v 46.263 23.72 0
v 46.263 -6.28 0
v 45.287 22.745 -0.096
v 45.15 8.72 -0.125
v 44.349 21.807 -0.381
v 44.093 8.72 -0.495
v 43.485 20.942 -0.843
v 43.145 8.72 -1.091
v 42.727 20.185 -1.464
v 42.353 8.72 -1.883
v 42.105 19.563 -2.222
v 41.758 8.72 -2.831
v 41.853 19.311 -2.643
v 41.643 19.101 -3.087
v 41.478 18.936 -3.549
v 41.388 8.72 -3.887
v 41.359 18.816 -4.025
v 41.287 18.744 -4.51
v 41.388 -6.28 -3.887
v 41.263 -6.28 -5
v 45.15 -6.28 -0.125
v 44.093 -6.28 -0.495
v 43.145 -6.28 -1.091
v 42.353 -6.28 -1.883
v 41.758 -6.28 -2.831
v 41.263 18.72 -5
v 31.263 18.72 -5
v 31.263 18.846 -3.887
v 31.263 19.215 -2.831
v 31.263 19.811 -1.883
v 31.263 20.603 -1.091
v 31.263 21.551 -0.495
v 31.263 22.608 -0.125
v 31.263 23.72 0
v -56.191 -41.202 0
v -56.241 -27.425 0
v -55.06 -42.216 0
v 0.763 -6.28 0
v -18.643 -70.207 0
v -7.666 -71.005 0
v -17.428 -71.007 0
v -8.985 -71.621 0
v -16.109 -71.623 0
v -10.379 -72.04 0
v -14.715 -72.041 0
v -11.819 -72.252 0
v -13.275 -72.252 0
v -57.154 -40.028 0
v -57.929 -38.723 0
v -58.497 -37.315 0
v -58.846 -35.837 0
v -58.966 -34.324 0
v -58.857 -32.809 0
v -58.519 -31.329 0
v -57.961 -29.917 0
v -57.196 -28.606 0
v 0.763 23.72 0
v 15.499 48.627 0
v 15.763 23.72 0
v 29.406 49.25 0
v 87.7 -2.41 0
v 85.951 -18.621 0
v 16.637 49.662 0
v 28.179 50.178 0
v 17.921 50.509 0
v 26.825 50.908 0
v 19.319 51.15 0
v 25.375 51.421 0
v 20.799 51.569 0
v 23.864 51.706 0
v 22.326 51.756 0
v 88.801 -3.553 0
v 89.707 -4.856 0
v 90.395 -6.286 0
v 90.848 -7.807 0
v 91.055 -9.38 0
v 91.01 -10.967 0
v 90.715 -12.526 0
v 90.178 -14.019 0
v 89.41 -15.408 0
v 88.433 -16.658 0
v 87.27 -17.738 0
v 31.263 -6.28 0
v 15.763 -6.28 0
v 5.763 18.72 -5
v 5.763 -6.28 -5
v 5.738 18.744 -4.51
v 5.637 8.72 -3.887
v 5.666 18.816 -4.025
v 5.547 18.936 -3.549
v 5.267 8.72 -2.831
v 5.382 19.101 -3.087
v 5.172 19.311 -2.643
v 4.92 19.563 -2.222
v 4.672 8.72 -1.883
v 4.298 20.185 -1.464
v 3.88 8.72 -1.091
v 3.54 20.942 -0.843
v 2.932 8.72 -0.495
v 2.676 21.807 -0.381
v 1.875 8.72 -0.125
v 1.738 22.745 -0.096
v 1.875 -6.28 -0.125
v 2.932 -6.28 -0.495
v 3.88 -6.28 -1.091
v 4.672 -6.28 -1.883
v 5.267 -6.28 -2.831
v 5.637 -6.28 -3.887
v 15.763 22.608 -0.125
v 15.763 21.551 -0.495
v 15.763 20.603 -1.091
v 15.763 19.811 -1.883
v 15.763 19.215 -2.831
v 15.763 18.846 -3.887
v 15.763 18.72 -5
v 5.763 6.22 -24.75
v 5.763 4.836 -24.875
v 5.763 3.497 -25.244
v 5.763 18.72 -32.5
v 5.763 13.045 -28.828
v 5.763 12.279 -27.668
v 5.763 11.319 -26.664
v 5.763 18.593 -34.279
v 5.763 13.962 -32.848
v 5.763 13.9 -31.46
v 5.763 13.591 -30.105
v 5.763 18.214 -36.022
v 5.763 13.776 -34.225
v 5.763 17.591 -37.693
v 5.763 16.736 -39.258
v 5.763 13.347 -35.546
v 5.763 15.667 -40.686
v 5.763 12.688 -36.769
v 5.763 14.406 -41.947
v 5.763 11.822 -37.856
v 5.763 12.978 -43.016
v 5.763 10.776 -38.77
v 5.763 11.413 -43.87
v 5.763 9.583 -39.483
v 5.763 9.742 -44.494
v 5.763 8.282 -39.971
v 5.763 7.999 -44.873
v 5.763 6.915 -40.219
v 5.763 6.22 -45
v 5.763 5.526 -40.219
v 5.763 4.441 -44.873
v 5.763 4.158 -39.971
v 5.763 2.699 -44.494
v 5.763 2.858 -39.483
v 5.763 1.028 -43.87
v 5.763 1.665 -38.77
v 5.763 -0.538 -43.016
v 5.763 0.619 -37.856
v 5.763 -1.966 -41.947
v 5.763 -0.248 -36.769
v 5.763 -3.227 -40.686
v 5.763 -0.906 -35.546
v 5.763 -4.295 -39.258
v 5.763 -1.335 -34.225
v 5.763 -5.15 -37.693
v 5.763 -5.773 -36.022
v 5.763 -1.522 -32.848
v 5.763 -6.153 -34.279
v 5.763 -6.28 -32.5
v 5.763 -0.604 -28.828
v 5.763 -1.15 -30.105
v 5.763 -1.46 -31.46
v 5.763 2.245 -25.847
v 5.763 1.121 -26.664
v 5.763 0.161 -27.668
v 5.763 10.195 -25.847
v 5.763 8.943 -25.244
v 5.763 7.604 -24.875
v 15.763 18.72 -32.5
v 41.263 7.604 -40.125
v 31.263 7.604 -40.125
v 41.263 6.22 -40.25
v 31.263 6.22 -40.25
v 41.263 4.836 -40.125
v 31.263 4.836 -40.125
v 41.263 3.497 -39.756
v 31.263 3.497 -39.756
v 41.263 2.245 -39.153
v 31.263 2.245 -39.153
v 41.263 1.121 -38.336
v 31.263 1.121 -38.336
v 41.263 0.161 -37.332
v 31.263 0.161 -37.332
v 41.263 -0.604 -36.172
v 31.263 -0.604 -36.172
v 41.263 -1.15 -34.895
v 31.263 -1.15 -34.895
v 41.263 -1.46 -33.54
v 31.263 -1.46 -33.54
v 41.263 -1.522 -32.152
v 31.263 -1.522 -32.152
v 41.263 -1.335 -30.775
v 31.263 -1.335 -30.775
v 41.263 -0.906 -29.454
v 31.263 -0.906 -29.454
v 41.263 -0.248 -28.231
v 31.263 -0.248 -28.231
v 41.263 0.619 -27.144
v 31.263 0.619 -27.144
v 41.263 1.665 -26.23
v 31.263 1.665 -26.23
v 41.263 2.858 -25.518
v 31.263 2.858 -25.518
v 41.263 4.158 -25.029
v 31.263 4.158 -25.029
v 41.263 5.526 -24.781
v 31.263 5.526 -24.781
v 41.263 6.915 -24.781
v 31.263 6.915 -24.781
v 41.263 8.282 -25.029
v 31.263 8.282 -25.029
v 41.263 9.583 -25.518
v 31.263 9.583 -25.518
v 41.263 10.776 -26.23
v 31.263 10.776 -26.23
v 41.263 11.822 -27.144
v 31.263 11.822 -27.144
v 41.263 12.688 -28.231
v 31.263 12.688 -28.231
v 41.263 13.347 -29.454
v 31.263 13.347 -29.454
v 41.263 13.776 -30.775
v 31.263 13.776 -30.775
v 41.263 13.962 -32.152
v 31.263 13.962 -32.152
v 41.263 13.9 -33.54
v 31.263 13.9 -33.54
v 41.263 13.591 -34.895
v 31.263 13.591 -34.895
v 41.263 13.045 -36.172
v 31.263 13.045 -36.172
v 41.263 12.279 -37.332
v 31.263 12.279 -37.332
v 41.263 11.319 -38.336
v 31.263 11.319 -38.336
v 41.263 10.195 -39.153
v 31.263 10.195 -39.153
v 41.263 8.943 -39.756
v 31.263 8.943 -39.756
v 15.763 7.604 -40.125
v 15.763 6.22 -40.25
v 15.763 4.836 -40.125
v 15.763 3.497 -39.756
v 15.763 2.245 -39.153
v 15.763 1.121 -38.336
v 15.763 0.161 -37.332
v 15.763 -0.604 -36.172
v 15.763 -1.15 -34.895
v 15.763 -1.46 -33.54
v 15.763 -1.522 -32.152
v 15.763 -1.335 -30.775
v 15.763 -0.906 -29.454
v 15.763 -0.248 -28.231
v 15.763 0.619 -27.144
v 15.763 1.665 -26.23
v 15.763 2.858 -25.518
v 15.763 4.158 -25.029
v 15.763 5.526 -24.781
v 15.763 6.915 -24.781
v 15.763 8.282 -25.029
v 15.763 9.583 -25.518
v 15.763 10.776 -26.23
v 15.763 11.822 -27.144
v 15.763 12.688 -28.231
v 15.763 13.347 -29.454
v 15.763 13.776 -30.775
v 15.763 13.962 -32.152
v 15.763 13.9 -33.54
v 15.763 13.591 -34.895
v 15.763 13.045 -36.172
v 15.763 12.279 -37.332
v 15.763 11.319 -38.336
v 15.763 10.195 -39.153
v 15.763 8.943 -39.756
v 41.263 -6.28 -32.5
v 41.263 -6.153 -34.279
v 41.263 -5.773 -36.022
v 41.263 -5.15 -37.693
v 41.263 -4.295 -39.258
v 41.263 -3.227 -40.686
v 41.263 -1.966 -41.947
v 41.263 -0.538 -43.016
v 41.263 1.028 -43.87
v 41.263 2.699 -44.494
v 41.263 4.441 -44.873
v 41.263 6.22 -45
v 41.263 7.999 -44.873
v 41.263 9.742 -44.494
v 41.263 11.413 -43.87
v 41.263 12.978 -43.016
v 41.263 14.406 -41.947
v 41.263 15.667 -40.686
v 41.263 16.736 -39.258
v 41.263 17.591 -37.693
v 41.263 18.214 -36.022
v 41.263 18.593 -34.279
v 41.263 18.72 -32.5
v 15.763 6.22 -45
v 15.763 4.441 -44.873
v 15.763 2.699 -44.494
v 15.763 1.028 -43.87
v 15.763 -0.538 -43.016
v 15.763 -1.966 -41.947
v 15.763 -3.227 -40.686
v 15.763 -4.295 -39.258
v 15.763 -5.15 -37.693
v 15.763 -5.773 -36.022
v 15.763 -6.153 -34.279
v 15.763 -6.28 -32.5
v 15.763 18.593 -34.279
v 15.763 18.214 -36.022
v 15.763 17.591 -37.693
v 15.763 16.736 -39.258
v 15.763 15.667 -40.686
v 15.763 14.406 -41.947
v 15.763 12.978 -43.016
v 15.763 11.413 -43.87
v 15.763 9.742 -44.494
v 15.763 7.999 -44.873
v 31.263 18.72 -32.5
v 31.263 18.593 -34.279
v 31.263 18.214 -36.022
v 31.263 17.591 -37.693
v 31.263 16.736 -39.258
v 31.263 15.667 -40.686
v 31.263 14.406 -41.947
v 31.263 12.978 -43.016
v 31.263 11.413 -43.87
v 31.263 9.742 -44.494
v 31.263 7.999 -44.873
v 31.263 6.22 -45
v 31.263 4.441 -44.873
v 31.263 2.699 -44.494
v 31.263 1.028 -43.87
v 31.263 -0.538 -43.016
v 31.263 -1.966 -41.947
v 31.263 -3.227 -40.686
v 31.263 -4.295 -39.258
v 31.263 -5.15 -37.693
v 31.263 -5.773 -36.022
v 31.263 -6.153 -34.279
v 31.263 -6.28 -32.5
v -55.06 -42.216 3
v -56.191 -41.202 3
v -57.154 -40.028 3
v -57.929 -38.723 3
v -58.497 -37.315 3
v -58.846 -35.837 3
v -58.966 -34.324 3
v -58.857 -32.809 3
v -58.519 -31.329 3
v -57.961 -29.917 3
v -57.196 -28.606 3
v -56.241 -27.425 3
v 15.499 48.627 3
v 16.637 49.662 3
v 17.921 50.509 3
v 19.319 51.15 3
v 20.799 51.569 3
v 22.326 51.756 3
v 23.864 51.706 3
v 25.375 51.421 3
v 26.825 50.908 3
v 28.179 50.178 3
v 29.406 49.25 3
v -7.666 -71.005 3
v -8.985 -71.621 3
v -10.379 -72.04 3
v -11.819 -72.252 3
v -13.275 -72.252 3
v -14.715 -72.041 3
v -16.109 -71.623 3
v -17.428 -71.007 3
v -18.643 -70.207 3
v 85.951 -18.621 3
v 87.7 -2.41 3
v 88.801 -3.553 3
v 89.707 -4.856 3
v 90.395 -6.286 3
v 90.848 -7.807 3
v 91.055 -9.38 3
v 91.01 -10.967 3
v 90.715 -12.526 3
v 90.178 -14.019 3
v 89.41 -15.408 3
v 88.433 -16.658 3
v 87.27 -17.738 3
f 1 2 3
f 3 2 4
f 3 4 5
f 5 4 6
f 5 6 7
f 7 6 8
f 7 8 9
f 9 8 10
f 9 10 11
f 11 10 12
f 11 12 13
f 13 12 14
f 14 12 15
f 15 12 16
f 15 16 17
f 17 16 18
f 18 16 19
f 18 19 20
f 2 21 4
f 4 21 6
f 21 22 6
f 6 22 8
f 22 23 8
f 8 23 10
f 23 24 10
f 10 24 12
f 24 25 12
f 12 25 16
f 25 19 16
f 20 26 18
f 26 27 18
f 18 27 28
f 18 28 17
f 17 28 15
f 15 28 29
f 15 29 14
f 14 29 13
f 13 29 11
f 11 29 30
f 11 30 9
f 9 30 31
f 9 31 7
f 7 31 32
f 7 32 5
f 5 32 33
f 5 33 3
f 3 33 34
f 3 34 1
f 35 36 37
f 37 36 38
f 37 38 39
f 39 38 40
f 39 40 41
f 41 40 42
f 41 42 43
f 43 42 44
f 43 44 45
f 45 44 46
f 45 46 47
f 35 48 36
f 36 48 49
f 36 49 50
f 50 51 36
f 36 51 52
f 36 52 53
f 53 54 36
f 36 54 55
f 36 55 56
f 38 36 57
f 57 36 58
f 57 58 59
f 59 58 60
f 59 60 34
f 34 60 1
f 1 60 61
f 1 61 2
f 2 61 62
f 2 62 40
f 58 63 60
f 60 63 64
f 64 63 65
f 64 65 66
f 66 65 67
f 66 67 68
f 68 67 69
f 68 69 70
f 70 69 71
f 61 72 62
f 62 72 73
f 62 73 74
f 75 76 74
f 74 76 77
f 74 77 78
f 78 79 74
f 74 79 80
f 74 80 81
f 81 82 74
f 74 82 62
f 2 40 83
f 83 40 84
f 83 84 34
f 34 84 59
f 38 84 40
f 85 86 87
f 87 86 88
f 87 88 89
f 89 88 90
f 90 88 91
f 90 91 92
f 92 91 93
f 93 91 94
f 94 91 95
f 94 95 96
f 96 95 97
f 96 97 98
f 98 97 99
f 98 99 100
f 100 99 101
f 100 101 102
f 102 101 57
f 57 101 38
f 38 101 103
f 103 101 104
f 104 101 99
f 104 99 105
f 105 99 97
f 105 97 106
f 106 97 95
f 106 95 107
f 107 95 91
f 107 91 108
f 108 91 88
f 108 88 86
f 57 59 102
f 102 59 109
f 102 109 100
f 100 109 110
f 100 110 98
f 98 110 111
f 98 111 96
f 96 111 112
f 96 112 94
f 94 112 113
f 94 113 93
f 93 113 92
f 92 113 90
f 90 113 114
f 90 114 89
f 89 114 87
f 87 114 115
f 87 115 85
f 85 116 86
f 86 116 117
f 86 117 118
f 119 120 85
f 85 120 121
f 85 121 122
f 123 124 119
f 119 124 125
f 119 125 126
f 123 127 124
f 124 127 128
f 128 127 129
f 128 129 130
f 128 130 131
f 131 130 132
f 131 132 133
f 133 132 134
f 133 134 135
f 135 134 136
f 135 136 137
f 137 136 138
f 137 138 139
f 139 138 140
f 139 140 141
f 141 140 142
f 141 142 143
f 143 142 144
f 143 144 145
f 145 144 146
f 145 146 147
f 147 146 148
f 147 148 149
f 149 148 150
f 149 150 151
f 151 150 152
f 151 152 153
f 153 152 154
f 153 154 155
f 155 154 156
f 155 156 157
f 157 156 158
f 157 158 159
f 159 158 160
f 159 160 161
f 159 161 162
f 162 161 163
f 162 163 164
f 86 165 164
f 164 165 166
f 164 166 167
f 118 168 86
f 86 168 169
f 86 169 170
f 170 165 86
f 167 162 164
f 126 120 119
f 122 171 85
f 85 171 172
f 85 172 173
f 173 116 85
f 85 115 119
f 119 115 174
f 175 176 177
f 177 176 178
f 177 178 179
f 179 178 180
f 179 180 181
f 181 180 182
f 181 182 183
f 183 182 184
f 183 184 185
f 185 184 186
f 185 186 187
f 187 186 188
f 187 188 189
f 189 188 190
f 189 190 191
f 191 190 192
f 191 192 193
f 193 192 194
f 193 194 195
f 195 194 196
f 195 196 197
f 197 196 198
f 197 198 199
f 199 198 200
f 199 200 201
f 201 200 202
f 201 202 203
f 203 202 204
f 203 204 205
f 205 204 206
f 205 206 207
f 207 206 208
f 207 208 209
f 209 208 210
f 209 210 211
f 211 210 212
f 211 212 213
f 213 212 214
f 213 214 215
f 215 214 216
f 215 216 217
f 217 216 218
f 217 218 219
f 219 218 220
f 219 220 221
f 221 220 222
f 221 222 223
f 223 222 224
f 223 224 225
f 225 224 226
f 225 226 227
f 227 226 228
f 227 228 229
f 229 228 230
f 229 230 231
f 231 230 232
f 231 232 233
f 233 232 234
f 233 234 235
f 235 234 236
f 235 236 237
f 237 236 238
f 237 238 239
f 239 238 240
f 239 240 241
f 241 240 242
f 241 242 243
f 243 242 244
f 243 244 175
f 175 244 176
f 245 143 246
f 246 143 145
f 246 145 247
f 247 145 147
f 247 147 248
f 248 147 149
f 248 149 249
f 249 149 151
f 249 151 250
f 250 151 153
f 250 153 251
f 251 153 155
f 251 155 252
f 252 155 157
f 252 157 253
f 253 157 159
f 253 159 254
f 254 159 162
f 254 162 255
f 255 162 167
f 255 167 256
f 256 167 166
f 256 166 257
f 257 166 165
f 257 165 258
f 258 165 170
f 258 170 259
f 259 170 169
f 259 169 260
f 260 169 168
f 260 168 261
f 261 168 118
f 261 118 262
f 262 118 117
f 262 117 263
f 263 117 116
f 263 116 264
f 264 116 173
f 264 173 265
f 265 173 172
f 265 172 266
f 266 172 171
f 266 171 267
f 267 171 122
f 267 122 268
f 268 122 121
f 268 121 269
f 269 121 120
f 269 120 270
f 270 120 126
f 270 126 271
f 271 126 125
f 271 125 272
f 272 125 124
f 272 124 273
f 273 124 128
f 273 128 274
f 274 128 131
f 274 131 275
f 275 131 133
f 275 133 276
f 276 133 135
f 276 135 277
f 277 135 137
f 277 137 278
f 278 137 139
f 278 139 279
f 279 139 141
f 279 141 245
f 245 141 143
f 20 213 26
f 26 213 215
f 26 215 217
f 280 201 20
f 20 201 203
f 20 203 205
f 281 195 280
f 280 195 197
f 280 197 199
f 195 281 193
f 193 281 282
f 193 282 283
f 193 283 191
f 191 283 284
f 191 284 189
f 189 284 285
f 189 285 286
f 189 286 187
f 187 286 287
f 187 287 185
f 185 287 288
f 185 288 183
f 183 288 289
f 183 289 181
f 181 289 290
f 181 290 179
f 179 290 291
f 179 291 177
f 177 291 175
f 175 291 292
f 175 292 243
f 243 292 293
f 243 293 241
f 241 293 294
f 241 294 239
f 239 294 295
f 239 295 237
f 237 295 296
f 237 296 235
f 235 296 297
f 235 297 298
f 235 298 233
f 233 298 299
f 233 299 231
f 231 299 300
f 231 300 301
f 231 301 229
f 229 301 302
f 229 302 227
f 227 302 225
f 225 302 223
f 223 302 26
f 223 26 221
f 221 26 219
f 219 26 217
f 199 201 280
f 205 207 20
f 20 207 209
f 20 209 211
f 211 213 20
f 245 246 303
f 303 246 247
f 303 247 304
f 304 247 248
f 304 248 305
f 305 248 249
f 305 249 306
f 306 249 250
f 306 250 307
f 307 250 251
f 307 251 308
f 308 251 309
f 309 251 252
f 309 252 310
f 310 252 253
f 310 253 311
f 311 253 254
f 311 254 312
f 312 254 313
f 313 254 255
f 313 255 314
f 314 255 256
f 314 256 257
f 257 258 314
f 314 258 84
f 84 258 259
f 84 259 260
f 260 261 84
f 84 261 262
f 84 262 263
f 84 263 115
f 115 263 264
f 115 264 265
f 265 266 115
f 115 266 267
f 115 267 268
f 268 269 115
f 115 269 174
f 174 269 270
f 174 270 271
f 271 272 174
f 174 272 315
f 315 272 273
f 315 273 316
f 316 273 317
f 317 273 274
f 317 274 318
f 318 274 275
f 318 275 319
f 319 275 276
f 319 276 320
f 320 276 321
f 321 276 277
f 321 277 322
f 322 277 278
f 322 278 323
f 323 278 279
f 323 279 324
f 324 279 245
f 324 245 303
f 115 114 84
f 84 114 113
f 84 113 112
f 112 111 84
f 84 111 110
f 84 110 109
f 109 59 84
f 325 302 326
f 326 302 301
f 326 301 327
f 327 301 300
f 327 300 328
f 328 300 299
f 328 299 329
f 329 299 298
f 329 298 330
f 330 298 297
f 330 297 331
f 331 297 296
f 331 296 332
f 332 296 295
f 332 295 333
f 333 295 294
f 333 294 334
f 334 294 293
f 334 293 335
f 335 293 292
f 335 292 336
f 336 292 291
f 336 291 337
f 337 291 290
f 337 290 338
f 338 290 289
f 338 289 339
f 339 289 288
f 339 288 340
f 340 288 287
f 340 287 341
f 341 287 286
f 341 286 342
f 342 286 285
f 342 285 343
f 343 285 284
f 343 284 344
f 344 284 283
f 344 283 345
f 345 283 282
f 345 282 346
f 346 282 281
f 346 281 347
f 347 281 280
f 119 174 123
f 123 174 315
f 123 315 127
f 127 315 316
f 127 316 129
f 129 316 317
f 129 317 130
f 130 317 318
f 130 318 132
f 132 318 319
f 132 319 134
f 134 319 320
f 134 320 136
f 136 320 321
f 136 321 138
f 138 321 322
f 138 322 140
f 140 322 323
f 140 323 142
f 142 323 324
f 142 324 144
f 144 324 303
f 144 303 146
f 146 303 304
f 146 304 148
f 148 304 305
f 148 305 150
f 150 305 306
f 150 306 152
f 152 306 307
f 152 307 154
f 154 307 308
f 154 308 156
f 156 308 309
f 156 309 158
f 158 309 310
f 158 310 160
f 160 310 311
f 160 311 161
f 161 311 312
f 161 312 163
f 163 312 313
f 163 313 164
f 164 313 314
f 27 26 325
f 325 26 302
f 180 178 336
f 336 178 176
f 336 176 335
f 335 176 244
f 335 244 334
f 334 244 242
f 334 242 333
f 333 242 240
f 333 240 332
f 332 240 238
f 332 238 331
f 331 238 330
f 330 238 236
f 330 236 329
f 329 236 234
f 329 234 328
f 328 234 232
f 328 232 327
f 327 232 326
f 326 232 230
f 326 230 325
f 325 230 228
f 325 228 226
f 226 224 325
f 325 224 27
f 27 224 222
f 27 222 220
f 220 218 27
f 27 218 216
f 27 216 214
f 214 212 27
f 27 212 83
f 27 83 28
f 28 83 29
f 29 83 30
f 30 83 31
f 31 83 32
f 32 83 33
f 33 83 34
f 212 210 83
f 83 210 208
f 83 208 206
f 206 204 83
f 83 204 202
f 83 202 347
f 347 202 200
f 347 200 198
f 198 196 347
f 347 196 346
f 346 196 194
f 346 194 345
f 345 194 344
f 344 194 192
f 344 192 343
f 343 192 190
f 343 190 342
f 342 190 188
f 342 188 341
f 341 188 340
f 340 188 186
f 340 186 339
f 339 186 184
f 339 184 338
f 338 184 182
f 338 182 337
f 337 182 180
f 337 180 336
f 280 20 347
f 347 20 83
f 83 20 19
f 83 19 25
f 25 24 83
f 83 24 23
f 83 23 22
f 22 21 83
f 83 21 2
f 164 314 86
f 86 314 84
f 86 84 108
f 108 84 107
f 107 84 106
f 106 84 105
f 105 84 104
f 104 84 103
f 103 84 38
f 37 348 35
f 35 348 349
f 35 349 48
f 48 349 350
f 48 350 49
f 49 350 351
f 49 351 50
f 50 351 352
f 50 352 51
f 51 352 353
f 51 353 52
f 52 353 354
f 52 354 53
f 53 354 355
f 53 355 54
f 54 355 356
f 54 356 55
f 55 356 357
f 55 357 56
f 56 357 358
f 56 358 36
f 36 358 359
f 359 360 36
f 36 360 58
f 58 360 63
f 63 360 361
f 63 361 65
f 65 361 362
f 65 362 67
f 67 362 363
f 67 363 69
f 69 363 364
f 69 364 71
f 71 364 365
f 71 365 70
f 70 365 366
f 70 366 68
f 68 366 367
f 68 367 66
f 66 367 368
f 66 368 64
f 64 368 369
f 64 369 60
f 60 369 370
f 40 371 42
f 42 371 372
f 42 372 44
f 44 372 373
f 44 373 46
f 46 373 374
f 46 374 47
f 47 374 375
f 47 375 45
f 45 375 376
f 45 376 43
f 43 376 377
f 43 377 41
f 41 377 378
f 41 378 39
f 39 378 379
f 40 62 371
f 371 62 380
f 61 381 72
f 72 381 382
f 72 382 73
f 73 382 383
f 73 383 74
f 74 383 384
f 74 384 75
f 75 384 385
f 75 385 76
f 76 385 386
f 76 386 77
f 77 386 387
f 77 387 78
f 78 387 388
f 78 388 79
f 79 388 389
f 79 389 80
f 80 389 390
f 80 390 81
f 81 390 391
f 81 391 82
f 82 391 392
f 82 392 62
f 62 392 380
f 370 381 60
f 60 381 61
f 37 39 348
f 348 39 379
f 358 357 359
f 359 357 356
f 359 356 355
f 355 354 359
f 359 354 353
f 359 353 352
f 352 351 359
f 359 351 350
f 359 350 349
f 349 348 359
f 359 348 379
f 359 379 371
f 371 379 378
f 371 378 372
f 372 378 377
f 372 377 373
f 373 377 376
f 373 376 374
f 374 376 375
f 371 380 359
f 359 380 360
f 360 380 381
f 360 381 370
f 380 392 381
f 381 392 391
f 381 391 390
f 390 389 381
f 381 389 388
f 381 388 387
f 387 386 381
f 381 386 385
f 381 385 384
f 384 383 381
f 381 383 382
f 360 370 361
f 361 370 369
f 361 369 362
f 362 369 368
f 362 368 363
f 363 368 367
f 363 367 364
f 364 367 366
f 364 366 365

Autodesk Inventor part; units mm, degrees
ref_plane "YZ Plane" through (0, 0, 0) normal (1, 0, 0) x (0, 1, 0)
ref_plane "XZ Plane" through (0, 0, 0) normal (0, 1, 0) x (-1, 0, 0)
ref_plane "XY Plane" through (0, 0, 0) normal (0, 0, 1) x (1, 0, 0)
sketch "Sketch1" plane through (0, 0, 0) normal (0, 0, 1) x (1, 0, 0)
  line L0 (22.1506, 55.679) -> (98.2363, -11.7464)
  line L1 (98.2363, -11.7464) -> (-13.4178, -74.2233)
  line L2 (-13.4178, -74.2233) -> (-63.8323, -35.4735)
  line L3 (-63.8323, -35.4735) -> (22.1506, 55.679)
  point P0 (0, 0)
extrude "Extrusion1" add sketch "Sketch1" along normal blind 3
fillet "Fillet1" radius 10 4 edges at (98.2363, -11.7464, 1.5) (-13.4178, -74.2233, 1.5) (22.1506, 55.679, 1.5) (-63.8323, -35.4735, 1.5)
sketch "Sketch2" plane through (0, 0, 0) normal (0, 0, -1) x (-1, 0, 0)
  line L0 (-41.2625, -6.2798) -> (-5.7625, -6.2798)
  line L1 (-5.7625, -6.2798) -> (-5.7625, 18.7202)
  line L2 (-5.7625, 18.7202) -> (-41.2625, 18.7202)
  line L3 (-41.2625, 18.7202) -> (-41.2625, -6.2798)
  line L4 (-41.2625, -6.2798) -> (-5.7625, 18.7202) construction
  line L5 (-5.7625, -6.2798) -> (-41.2625, 18.7202) construction
  line L6 (-31.2625, -6.2798) -> (-15.7625, -6.2798)
  line L7 (-15.7625, -6.2798) -> (-15.7625, 18.7202)
  line L8 (-15.7625, 18.7202) -> (-31.2625, 18.7202)
  line L9 (-31.2625, 18.7202) -> (-31.2625, -6.2798)
  line L10 (-31.2625, -6.2798) -> (-15.7625, 18.7202) construction
  line L11 (-15.7625, -6.2798) -> (-31.2625, 18.7202) construction
  point P0 (0, 0)
  point P1 (-23.5125, 6.2202)
  point P2 (-31.2625, -6.2798)
  point P3 (-15.7625, -6.2798)
  dimension "d3" = 10
  dimension "d4" = 25
  dimension "d8" = 15.5
extrude "Extrusion2" add sketch "Sketch2" along normal blind 45 contours L3 L2 L9 L0 | L7 L2 L1 L0
fillet "Fillet2" radius 12.5 4 edges at (10.7625, 18.7202, -45) (36.2625, 18.7202, -45) (10.7625, -6.2798, -45) (36.2625, -6.2798, -45)
sketch "Sketch3" plane through (5.7625, -6.2798, 0) normal (-1, 0, 0) x (0, 0, 1)
  arc A0 (-32.5, 25) -> (-32.5, 0) centre (-32.5, 12.5) ccw projected
  circle A1 centre (-32.5, 12.5) radius 7.75
  point P0 (0, 6.2798)
  dimension "d9" = 15.5
extrude "Extrusion3" cut sketch "Sketch3" against normal up to surface (35.5 mm away)
fillet "Fillet3" radius 5 4 edges at (5.7625, 6.2202, 0) (10.7625, 18.7202, 0) (41.2625, 6.2202, 0) (36.2625, 18.7202, 0)
properties part number "Upper Back Plate"
